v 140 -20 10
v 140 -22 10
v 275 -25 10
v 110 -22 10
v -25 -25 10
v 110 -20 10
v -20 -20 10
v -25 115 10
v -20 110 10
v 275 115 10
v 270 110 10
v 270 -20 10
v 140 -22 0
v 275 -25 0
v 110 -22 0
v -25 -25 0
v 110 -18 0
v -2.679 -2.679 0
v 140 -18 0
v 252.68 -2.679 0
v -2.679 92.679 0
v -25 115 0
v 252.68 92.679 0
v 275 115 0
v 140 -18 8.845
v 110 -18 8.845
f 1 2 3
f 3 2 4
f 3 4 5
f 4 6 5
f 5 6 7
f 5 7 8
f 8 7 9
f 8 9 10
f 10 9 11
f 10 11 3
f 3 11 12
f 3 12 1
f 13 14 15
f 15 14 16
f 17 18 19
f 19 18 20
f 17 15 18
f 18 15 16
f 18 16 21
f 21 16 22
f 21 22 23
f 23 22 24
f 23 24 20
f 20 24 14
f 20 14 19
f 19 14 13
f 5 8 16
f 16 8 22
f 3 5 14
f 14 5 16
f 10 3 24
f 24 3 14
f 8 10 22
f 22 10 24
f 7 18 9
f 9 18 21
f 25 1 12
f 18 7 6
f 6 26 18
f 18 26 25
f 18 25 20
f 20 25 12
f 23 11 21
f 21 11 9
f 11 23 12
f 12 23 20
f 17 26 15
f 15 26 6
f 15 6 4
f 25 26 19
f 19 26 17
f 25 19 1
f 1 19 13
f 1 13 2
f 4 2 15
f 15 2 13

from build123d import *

# Parameters (mm, degrees)
SKETCH1_W           = 300
SKETCH1_H           = 140
SKETCH1_W_2         = 250
SKETCH1_H_2         = 90
BOSS_EXTRUDE1_DEPTH = 10
SKETCH2_W           = 30
SKETCH2_H           = 4
CUT_EXTRUDE1_DEPTH  = 44


with BuildPart() as part:
    # Sketch1 → Boss-Extrude1 (new body)
    with BuildSketch(Plane.XY):
        with Locations((125, 45)):
            Rectangle(SKETCH1_W, SKETCH1_H)
        with Locations((125, 45)):
            Rectangle(SKETCH1_W_2, SKETCH1_H_2, mode=Mode.SUBTRACT)
    extrude(amount=BOSS_EXTRUDE1_DEPTH)

    # Chamfer1
    # the kernel refuses this chamfer: 20, 11.547005384 mm, written as the material it takes off along each edge
    with BuildSketch(Plane(origin=(250, 0, 10), x_dir=(-0.05789386240267053, 0, -0.9983227437537926), z_dir=(0, 1, 0)), Plane(origin=(0, 90, 10), x_dir=(0.05789386240267081, 0, -0.9983227437537926), z_dir=(0, -1, 0))) as chamfer1_piece_1:
        with BuildLine():
            Line((11.967077239, 0), (-1.59731639, -20.634955616))
            Line((-1.59731639, -20.634955616), (-1.996645488, -20.611798071))
            ThreePointArc((-1.996645488, -20.611798071), (-0.998322744, -10.305899035), (-0.399329098, 0.023157545))
            Line((-0.399329098, 0.023157545), (0.023157545, 0.399329098))
            ThreePointArc((0.023157545, 0.399329098), (5.986641142, 0.053499955), (11.990234784, 0.399329098))
            Line((11.990234784, 0.399329098), (11.967077239, 0))
        make_face()
    extrude(amount=90, mode=Mode.SUBTRACT)
    with BuildSketch(Plane(origin=(250, 90, 10), x_dir=(0, -0.05789386240267053, -0.9983227437537926), z_dir=(-1, 0, 0)), Plane(origin=(0, 0, 10), x_dir=(0, 0.05789386240267081, -0.9983227437537926), z_dir=(1, 0, 0))) as chamfer1_piece_2:
        with BuildLine():
            Line((11.967077239, 0), (-1.59731639, -20.634955616))
            Line((-1.59731639, -20.634955616), (-1.996645488, -20.611798071))
            ThreePointArc((-1.996645488, -20.611798071), (-0.998322744, -10.305899035), (-0.399329098, 0.023157545))
            Line((-0.399329098, 0.023157545), (0.023157545, 0.399329098))
            ThreePointArc((0.023157545, 0.399329098), (5.986641142, 0.053499955), (11.990234784, 0.399329098))
            Line((11.990234784, 0.399329098), (11.967077239, 0))
        make_face()
    extrude(amount=250, mode=Mode.SUBTRACT)
    with BuildSketch(Plane(origin=(250, -51.741715093, 10), x_dir=(-0.05789386240267053, 0, -0.9983227437537926), z_dir=(0, 1, 0))) as chamfer1_piece_3a_section:
        with BuildLine():
            Line((11.967077239, 0), (-1.59731639, -20.634955616))
            Line((-1.59731639, -20.634955616), (-1.996645488, -20.611798071))
            ThreePointArc((-1.996645488, -20.611798071), (-0.998322744, -10.305899035), (-0.399329098, 0.023157545))
            Line((-0.399329098, 0.023157545), (0.023157545, 0.399329098))
            ThreePointArc((0.023157545, 0.399329098), (5.986641142, 0.053499955), (11.990234784, 0.399329098))
            Line((11.990234784, 0.399329098), (11.967077239, 0))
        make_face()
    chamfer1_piece_3a = extrude(amount=141.741715093, mode=Mode.PRIVATE)
    chamfer1_piece_3a = split(chamfer1_piece_3a, bisect_by=Plane(origin=(256.707645432, 0, 6.297222994), z_dir=(0, -1, 0)), keep=Keep.TOP, mode=Mode.PRIVATE)
    with BuildSketch(Plane(origin=(0, 0, 10), x_dir=(0, 0.05789386240267081, -0.9983227437537926), z_dir=(1, 0, 0))) as chamfer1_piece_3b_section:
        with BuildLine():
            Line((11.967077239, 0), (-1.59731639, -20.634955616))
            Line((-1.59731639, -20.634955616), (-1.996645488, -20.611798071))
            ThreePointArc((-1.996645488, -20.611798071), (-0.998322744, -10.305899035), (-0.399329098, 0.023157545))
            Line((-0.399329098, 0.023157545), (0.023157545, 0.399329098))
            ThreePointArc((0.023157545, 0.399329098), (5.986641142, 0.053499955), (11.990234784, 0.399329098))
            Line((11.990234784, 0.399329098), (11.967077239, 0))
        make_face()
    chamfer1_piece_3b = extrude(amount=301.741715093, mode=Mode.PRIVATE)
    chamfer1_piece_3b = split(chamfer1_piece_3b, bisect_by=Plane(origin=(250, -6.707645432, 6.297222994), z_dir=(1, 0, 0)), keep=Keep.TOP, mode=Mode.PRIVATE)
    chamfer1_piece_3 = chamfer1_piece_3a & chamfer1_piece_3b
    add(chamfer1_piece_3, mode=Mode.SUBTRACT)
    with BuildSketch(Plane(origin=(301.741715093, 90, 10), x_dir=(0, -0.05789386240267053, -0.9983227437537926), z_dir=(-1, 0, 0))) as chamfer1_piece_4a_section:
        with BuildLine():
            Line((11.967077239, 0), (-1.59731639, -20.634955616))
            Line((-1.59731639, -20.634955616), (-1.996645488, -20.611798071))
            ThreePointArc((-1.996645488, -20.611798071), (-0.998322744, -10.305899035), (-0.399329098, 0.023157545))
            Line((-0.399329098, 0.023157545), (0.023157545, 0.399329098))
            ThreePointArc((0.023157545, 0.399329098), (5.986641142, 0.053499955), (11.990234784, 0.399329098))
            Line((11.990234784, 0.399329098), (11.967077239, 0))
        make_face()
    chamfer1_piece_4a = extrude(amount=301.741715093, mode=Mode.PRIVATE)
    chamfer1_piece_4a = split(chamfer1_piece_4a, bisect_by=Plane(origin=(250, 96.707645432, 6.297222994), z_dir=(1, 0, 0)), keep=Keep.TOP, mode=Mode.PRIVATE)
    with BuildSketch(Plane(origin=(250, 0, 10), x_dir=(-0.05789386240267053, 0, -0.9983227437537926), z_dir=(0, 1, 0))) as chamfer1_piece_4b_section:
        with BuildLine():
            Line((11.967077239, 0), (-1.59731639, -20.634955616))
            Line((-1.59731639, -20.634955616), (-1.996645488, -20.611798071))
            ThreePointArc((-1.996645488, -20.611798071), (-0.998322744, -10.305899035), (-0.399329098, 0.023157545))
            Line((-0.399329098, 0.023157545), (0.023157545, 0.399329098))
            ThreePointArc((0.023157545, 0.399329098), (5.986641142, 0.053499955), (11.990234784, 0.399329098))
            Line((11.990234784, 0.399329098), (11.967077239, 0))
        make_face()
    chamfer1_piece_4b = extrude(amount=141.741715093, mode=Mode.PRIVATE)
    chamfer1_piece_4b = split(chamfer1_piece_4b, bisect_by=Plane(origin=(256.707645432, 90, 6.297222994), z_dir=(0, 1, 0)), keep=Keep.TOP, mode=Mode.PRIVATE)
    chamfer1_piece_4 = chamfer1_piece_4a & chamfer1_piece_4b
    add(chamfer1_piece_4, mode=Mode.SUBTRACT)
    with BuildSketch(Plane(origin=(0, 141.741715093, 10), x_dir=(0.05789386240267081, 0, -0.9983227437537926), z_dir=(0, -1, 0))) as chamfer1_piece_5a_section:
        with BuildLine():
            Line((11.967077239, 0), (-1.59731639, -20.634955616))
            Line((-1.59731639, -20.634955616), (-1.996645488, -20.611798071))
            ThreePointArc((-1.996645488, -20.611798071), (-0.998322744, -10.305899035), (-0.399329098, 0.023157545))
            Line((-0.399329098, 0.023157545), (0.023157545, 0.399329098))
            ThreePointArc((0.023157545, 0.399329098), (5.986641142, 0.053499955), (11.990234784, 0.399329098))
            Line((11.990234784, 0.399329098), (11.967077239, 0))
        make_face()
    chamfer1_piece_5a = extrude(amount=141.741715093, mode=Mode.PRIVATE)
    chamfer1_piece_5a = split(chamfer1_piece_5a, bisect_by=Plane(origin=(-6.707645432, 90, 6.297222994), z_dir=(0, 1, 0)), keep=Keep.TOP, mode=Mode.PRIVATE)
    with BuildSketch(Plane(origin=(250, 90, 10), x_dir=(0, -0.05789386240267053, -0.9983227437537926), z_dir=(-1, 0, 0))) as chamfer1_piece_5b_section:
        with BuildLine():
            Line((11.967077239, 0), (-1.59731639, -20.634955616))
            Line((-1.59731639, -20.634955616), (-1.996645488, -20.611798071))
            ThreePointArc((-1.996645488, -20.611798071), (-0.998322744, -10.305899035), (-0.399329098, 0.023157545))
            Line((-0.399329098, 0.023157545), (0.023157545, 0.399329098))
            ThreePointArc((0.023157545, 0.399329098), (5.986641142, 0.053499955), (11.990234784, 0.399329098))
            Line((11.990234784, 0.399329098), (11.967077239, 0))
        make_face()
    chamfer1_piece_5b = extrude(amount=301.741715093, mode=Mode.PRIVATE)
    chamfer1_piece_5b = split(chamfer1_piece_5b, bisect_by=Plane(origin=(0, 96.707645432, 6.297222994), z_dir=(-1, 0, 0)), keep=Keep.TOP, mode=Mode.PRIVATE)
    chamfer1_piece_5 = chamfer1_piece_5a & chamfer1_piece_5b
    add(chamfer1_piece_5, mode=Mode.SUBTRACT)
    with BuildSketch(Plane(origin=(0, 90, 10), x_dir=(0.05789386240267081, 0, -0.9983227437537926), z_dir=(0, -1, 0))) as chamfer1_piece_6a_section:
        with BuildLine():
            Line((11.967077239, 0), (-1.59731639, -20.634955616))
            Line((-1.59731639, -20.634955616), (-1.996645488, -20.611798071))
            ThreePointArc((-1.996645488, -20.611798071), (-0.998322744, -10.305899035), (-0.399329098, 0.023157545))
            Line((-0.399329098, 0.023157545), (0.023157545, 0.399329098))
            ThreePointArc((0.023157545, 0.399329098), (5.986641142, 0.053499955), (11.990234784, 0.399329098))
            Line((11.990234784, 0.399329098), (11.967077239, 0))
        make_face()
    chamfer1_piece_6a = extrude(amount=141.741715093, mode=Mode.PRIVATE)
    chamfer1_piece_6a = split(chamfer1_piece_6a, bisect_by=Plane(origin=(-6.707645432, 0, 6.297222994), z_dir=(0, -1, 0)), keep=Keep.TOP, mode=Mode.PRIVATE)
    with BuildSketch(Plane(origin=(-51.741715093, 0, 10), x_dir=(0, 0.05789386240267081, -0.9983227437537926), z_dir=(1, 0, 0))) as chamfer1_piece_6b_section:
        with BuildLine():
            Line((11.967077239, 0), (-1.59731639, -20.634955616))
            Line((-1.59731639, -20.634955616), (-1.996645488, -20.611798071))
            ThreePointArc((-1.996645488, -20.611798071), (-0.998322744, -10.305899035), (-0.399329098, 0.023157545))
            Line((-0.399329098, 0.023157545), (0.023157545, 0.399329098))
            ThreePointArc((0.023157545, 0.399329098), (5.986641142, 0.053499955), (11.990234784, 0.399329098))
            Line((11.990234784, 0.399329098), (11.967077239, 0))
        make_face()
    chamfer1_piece_6b = extrude(amount=301.741715093, mode=Mode.PRIVATE)
    chamfer1_piece_6b = split(chamfer1_piece_6b, bisect_by=Plane(origin=(0, -6.707645432, 6.297222994), z_dir=(-1, 0, 0)), keep=Keep.TOP, mode=Mode.PRIVATE)
    chamfer1_piece_6 = chamfer1_piece_6a & chamfer1_piece_6b
    add(chamfer1_piece_6, mode=Mode.SUBTRACT)

    # Sketch2 → Cut-Extrude1 (cut)
    with BuildSketch(Plane.XY.offset(10)):
        with Locations((125, -20)):
            Rectangle(SKETCH2_W, SKETCH2_H)
    extrude(amount=-CUT_EXTRUDE1_DEPTH, mode=Mode.SUBTRACT)


solid = part.part
